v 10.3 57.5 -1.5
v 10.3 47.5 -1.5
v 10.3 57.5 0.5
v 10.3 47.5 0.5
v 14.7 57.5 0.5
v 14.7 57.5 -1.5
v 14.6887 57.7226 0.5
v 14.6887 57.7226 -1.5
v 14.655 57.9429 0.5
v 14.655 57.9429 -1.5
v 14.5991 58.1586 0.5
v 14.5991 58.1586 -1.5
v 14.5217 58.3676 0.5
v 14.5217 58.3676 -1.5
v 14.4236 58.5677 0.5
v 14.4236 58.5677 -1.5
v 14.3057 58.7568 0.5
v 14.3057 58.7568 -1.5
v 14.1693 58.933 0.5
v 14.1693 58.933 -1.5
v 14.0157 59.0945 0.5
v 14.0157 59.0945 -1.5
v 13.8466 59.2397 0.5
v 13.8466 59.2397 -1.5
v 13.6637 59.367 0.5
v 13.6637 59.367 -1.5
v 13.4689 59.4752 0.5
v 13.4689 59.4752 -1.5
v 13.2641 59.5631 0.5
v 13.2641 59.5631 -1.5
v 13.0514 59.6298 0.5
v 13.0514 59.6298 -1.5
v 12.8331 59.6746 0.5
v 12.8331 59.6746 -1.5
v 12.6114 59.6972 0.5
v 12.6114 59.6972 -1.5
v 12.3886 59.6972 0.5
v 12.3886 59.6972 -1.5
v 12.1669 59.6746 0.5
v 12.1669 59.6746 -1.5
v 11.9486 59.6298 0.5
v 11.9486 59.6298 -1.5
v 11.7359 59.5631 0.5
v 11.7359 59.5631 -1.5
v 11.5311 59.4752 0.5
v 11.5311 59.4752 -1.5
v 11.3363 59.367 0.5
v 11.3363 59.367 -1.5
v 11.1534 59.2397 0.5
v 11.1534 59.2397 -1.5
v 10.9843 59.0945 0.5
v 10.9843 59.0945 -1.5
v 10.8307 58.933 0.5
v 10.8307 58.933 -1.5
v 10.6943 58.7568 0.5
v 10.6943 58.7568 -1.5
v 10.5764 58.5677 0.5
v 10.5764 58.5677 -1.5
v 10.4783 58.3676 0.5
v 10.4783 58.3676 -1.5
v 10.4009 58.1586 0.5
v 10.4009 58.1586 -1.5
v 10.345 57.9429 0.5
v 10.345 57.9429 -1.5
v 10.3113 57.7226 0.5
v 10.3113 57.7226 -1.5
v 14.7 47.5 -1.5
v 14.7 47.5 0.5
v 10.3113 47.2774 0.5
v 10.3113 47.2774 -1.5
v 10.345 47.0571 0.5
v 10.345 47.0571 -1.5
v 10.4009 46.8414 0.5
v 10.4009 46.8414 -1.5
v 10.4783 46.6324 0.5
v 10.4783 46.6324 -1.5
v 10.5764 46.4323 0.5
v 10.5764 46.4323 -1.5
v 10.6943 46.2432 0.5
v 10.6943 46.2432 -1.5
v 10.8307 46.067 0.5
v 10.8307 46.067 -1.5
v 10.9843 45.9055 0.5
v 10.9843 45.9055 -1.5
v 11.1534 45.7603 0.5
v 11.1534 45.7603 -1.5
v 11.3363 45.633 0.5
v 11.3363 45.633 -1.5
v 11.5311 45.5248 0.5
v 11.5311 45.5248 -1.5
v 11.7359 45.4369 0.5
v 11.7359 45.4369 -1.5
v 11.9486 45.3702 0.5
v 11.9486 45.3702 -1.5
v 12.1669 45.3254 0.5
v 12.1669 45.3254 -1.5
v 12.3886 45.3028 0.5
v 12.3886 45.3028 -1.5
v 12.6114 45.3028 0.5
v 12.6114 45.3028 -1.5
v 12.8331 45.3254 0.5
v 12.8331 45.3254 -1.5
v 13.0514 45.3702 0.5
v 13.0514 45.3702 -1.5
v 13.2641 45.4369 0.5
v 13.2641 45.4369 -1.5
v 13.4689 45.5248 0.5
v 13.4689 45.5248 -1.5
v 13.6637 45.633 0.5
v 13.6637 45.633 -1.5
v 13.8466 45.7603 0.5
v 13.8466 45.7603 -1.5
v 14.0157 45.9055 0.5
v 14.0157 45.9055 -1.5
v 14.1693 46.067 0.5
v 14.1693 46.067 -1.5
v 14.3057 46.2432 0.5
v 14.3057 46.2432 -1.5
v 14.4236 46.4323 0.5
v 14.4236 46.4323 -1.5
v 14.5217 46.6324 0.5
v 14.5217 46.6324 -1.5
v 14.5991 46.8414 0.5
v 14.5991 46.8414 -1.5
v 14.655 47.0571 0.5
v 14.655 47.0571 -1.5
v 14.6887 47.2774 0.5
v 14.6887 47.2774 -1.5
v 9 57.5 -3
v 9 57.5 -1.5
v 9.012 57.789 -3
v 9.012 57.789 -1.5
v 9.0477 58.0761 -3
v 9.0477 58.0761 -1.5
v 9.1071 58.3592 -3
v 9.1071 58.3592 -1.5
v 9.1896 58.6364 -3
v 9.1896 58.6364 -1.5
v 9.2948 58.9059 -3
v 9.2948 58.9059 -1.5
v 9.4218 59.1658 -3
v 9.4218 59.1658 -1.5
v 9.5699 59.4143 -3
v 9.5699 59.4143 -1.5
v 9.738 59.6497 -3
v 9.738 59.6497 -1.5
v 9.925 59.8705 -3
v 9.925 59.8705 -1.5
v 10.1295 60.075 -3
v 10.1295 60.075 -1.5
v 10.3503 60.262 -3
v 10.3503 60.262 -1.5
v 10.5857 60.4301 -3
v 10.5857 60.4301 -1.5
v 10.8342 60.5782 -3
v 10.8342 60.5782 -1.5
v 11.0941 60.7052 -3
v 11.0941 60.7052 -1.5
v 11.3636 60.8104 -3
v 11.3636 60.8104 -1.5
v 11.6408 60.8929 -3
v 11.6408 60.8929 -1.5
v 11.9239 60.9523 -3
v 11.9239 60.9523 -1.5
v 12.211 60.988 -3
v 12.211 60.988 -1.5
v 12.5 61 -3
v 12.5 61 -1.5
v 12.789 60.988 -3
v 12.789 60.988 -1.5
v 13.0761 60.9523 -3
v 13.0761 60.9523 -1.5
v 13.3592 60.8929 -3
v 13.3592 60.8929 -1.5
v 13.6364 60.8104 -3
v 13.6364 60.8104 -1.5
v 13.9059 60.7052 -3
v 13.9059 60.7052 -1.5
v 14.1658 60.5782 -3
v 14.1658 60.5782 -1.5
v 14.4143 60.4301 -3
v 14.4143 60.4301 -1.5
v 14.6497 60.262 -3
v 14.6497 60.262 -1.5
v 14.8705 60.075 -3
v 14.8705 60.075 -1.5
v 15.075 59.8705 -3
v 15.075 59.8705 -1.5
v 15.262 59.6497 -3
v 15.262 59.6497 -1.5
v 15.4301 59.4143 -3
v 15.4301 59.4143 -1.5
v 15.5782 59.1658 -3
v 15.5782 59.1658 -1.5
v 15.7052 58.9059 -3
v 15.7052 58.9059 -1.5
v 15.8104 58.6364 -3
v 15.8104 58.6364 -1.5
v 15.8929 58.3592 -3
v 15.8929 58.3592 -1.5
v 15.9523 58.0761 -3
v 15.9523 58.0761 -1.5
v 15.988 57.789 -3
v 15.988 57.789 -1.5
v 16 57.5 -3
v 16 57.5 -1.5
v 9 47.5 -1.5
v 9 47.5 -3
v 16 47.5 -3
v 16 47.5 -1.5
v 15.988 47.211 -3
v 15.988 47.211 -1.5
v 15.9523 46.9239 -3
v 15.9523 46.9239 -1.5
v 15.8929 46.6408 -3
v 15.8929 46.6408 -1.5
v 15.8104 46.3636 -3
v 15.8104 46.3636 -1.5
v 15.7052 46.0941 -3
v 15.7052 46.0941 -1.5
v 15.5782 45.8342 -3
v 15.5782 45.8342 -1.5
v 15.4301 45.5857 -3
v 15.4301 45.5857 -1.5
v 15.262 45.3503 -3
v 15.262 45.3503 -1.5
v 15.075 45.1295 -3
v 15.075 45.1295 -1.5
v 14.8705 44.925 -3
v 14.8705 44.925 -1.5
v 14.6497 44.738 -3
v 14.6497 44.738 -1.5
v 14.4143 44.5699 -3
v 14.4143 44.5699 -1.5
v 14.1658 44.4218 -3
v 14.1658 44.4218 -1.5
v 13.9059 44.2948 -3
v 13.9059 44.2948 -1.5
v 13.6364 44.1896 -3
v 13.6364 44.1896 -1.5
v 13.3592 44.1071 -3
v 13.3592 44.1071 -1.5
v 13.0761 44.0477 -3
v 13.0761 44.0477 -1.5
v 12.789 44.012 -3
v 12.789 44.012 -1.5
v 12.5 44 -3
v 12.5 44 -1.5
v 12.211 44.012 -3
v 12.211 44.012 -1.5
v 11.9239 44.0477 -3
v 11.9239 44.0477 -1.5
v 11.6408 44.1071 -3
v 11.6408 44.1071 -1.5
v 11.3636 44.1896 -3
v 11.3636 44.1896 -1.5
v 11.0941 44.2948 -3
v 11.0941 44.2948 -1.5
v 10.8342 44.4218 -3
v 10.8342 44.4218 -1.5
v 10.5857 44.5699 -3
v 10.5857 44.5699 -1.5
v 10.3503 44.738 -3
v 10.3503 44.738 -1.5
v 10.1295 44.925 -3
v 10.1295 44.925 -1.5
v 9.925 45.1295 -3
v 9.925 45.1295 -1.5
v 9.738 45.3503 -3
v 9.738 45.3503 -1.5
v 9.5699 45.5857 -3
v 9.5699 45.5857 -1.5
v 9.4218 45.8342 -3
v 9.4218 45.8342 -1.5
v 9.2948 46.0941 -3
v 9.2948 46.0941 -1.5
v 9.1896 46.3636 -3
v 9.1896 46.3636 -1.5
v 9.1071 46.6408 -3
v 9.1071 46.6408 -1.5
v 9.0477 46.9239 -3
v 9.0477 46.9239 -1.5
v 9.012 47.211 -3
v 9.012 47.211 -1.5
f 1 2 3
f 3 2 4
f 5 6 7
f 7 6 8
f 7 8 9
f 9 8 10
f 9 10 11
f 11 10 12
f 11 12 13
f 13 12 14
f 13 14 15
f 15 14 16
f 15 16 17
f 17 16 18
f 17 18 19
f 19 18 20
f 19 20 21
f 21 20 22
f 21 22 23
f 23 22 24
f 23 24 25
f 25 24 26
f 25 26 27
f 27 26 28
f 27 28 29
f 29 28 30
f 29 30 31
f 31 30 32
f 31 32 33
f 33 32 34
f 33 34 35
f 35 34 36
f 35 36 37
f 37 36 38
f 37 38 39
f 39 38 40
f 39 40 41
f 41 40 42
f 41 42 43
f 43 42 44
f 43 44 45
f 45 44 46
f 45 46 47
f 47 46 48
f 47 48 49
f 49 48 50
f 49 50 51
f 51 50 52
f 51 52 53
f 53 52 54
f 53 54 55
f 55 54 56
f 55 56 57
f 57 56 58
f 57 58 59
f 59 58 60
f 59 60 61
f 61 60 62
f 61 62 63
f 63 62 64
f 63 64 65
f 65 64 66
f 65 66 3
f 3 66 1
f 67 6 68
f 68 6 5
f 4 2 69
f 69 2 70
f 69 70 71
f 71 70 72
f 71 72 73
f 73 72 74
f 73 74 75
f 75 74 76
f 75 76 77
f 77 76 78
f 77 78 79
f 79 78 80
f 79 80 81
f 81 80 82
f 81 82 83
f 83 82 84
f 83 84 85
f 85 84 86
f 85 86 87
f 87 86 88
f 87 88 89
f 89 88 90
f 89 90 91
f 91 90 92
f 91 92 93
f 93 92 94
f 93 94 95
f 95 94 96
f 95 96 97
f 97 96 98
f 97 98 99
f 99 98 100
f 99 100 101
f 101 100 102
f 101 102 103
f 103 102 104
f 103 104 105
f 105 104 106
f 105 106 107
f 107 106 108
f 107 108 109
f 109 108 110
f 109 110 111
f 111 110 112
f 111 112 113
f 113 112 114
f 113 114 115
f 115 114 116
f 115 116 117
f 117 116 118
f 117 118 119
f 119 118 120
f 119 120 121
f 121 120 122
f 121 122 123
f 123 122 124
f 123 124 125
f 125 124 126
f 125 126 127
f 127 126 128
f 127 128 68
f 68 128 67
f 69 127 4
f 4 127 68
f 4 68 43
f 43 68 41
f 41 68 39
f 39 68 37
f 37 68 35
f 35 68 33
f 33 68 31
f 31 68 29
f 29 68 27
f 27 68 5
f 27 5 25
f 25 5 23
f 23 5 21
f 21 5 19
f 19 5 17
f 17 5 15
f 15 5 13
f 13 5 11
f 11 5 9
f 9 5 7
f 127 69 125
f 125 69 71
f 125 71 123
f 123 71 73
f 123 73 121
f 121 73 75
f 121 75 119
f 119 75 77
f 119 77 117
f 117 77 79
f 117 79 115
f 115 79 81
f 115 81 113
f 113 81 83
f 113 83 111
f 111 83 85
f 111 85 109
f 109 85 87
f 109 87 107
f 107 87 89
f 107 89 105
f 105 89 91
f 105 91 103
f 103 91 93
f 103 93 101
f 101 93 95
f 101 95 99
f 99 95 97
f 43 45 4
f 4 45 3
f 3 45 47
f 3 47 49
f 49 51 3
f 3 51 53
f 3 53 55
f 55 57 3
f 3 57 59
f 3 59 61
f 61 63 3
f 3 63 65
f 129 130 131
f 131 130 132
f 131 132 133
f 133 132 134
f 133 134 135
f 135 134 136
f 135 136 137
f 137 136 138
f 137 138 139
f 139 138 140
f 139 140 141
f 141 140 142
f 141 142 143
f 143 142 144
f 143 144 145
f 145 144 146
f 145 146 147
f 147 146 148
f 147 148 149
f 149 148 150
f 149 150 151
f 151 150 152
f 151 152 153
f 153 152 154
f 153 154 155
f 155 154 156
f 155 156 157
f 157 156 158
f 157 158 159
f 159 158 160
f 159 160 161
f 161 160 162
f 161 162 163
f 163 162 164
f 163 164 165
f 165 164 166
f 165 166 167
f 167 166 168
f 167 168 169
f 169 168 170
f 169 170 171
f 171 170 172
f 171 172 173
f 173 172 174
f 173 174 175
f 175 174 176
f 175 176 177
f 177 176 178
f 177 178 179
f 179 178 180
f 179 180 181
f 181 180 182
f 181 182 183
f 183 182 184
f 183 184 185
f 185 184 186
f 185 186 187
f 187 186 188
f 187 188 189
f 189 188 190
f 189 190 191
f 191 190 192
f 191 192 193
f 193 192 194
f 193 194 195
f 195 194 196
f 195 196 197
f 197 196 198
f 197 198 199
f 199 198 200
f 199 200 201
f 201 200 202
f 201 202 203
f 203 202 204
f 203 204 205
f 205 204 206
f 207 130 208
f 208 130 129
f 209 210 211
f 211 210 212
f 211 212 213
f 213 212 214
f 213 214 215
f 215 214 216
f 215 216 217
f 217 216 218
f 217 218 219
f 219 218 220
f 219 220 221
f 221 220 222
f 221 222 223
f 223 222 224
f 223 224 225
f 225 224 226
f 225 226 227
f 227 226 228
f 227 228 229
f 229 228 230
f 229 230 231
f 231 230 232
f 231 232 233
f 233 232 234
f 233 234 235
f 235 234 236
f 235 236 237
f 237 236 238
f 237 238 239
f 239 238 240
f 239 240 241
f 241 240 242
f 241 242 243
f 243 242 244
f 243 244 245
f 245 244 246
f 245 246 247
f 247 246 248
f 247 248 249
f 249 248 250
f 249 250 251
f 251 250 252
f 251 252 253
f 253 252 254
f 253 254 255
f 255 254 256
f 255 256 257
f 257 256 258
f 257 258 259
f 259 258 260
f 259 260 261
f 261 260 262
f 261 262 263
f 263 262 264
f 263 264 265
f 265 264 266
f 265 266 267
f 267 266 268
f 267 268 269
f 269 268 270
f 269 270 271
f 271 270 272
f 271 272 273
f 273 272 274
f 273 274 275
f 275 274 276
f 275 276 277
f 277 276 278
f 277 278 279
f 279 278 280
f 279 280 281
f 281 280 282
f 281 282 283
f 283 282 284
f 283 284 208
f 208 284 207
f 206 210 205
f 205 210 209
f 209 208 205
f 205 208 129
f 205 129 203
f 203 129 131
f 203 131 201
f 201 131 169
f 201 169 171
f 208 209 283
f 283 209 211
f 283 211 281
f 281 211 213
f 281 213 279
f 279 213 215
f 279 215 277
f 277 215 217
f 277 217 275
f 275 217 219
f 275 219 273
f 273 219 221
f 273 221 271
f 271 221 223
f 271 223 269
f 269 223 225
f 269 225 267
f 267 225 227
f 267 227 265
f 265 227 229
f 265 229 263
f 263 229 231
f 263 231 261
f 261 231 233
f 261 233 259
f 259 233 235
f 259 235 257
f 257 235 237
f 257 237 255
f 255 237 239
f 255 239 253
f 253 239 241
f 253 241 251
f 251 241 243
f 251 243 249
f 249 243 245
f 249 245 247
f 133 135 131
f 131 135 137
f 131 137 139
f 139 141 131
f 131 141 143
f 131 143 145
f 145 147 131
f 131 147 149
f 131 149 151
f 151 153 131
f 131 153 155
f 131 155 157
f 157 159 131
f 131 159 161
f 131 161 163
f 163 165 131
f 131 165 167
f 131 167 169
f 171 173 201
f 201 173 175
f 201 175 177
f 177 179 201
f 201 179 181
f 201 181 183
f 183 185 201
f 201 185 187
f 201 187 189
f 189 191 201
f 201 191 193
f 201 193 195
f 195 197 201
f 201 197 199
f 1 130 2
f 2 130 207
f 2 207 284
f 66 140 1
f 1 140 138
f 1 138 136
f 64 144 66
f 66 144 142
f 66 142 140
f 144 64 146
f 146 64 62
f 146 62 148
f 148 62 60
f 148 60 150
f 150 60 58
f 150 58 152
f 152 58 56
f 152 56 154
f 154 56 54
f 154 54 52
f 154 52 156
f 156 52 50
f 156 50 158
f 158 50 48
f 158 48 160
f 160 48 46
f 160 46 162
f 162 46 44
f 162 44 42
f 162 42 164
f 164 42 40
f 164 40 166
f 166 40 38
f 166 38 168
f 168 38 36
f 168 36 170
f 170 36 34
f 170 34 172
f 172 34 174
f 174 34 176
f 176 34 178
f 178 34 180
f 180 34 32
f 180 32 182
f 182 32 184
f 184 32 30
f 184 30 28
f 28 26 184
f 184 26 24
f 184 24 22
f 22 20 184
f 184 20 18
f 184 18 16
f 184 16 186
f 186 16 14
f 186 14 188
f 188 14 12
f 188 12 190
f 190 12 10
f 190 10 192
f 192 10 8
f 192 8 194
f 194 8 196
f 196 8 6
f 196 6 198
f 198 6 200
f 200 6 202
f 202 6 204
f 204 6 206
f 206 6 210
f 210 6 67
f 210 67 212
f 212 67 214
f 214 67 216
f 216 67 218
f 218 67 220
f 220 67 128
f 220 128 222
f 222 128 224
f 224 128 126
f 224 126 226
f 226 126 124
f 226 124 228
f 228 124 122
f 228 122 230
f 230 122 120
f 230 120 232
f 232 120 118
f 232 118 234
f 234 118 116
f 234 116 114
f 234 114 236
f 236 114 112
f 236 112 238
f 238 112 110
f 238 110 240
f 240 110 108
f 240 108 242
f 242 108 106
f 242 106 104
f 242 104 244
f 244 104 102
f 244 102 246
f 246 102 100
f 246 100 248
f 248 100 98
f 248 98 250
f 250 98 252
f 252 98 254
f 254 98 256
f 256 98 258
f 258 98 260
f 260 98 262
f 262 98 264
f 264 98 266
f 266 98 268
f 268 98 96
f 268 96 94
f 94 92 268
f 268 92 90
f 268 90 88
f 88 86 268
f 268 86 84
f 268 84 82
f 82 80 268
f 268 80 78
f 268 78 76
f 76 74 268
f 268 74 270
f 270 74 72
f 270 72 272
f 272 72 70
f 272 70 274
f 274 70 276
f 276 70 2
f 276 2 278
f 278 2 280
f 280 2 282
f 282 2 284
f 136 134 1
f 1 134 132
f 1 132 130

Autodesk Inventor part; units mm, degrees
ref_plane "YZ Plane" through (0, 0, 0) normal (1, 0, 0) x (0, 1, 0)
ref_plane "XZ Plane" through (0, 0, 0) normal (0, 1, 0) x (-1, 0, 0)
ref_plane "XY Plane" through (0, 0, 0) normal (0, 0, 1) x (1, 0, 0)
ref_plane "Work Plane3" through (0, 1.5, -1.5) normal (0, 0, -1) x (-1, 0, 0)
sketch "Sketch1" plane through (0, 1.5, -1.5) normal (0, 0, -1) x (-1, 0, 0)
  arc A0 (-16, 46) -> (-9, 46) centre (-12.5, 46) ccw
  line L0 (-16, 46) -> (-16, 56)
  arc A1 (-9, 56) -> (-16, 56) centre (-12.5, 56) ccw
  line L1 (-9, 56) -> (-9, 46)
  point P0 (0, -1.5)
extrude "Extrusion1" add sketch "Sketch1" along normal blind 1.5
sketch "Sketch2" plane through (0, 1.5, -1.5) normal (0, 0, 1) x (1, 0, 0)
  line L0 (10.3, 56) -> (10.3, 46)
  arc A0 (10.3, 46) -> (14.7, 46) centre (12.5, 46) ccw
  line L1 (14.7, 46) -> (14.7, 56)
  arc A1 (14.7, 56) -> (10.3, 56) centre (12.5, 56) ccw
  point P0 (0, -1.5)
extrude "Extrusion2" add sketch "Sketch2" along normal blind 2
properties part number "power_button_3DPrint"
